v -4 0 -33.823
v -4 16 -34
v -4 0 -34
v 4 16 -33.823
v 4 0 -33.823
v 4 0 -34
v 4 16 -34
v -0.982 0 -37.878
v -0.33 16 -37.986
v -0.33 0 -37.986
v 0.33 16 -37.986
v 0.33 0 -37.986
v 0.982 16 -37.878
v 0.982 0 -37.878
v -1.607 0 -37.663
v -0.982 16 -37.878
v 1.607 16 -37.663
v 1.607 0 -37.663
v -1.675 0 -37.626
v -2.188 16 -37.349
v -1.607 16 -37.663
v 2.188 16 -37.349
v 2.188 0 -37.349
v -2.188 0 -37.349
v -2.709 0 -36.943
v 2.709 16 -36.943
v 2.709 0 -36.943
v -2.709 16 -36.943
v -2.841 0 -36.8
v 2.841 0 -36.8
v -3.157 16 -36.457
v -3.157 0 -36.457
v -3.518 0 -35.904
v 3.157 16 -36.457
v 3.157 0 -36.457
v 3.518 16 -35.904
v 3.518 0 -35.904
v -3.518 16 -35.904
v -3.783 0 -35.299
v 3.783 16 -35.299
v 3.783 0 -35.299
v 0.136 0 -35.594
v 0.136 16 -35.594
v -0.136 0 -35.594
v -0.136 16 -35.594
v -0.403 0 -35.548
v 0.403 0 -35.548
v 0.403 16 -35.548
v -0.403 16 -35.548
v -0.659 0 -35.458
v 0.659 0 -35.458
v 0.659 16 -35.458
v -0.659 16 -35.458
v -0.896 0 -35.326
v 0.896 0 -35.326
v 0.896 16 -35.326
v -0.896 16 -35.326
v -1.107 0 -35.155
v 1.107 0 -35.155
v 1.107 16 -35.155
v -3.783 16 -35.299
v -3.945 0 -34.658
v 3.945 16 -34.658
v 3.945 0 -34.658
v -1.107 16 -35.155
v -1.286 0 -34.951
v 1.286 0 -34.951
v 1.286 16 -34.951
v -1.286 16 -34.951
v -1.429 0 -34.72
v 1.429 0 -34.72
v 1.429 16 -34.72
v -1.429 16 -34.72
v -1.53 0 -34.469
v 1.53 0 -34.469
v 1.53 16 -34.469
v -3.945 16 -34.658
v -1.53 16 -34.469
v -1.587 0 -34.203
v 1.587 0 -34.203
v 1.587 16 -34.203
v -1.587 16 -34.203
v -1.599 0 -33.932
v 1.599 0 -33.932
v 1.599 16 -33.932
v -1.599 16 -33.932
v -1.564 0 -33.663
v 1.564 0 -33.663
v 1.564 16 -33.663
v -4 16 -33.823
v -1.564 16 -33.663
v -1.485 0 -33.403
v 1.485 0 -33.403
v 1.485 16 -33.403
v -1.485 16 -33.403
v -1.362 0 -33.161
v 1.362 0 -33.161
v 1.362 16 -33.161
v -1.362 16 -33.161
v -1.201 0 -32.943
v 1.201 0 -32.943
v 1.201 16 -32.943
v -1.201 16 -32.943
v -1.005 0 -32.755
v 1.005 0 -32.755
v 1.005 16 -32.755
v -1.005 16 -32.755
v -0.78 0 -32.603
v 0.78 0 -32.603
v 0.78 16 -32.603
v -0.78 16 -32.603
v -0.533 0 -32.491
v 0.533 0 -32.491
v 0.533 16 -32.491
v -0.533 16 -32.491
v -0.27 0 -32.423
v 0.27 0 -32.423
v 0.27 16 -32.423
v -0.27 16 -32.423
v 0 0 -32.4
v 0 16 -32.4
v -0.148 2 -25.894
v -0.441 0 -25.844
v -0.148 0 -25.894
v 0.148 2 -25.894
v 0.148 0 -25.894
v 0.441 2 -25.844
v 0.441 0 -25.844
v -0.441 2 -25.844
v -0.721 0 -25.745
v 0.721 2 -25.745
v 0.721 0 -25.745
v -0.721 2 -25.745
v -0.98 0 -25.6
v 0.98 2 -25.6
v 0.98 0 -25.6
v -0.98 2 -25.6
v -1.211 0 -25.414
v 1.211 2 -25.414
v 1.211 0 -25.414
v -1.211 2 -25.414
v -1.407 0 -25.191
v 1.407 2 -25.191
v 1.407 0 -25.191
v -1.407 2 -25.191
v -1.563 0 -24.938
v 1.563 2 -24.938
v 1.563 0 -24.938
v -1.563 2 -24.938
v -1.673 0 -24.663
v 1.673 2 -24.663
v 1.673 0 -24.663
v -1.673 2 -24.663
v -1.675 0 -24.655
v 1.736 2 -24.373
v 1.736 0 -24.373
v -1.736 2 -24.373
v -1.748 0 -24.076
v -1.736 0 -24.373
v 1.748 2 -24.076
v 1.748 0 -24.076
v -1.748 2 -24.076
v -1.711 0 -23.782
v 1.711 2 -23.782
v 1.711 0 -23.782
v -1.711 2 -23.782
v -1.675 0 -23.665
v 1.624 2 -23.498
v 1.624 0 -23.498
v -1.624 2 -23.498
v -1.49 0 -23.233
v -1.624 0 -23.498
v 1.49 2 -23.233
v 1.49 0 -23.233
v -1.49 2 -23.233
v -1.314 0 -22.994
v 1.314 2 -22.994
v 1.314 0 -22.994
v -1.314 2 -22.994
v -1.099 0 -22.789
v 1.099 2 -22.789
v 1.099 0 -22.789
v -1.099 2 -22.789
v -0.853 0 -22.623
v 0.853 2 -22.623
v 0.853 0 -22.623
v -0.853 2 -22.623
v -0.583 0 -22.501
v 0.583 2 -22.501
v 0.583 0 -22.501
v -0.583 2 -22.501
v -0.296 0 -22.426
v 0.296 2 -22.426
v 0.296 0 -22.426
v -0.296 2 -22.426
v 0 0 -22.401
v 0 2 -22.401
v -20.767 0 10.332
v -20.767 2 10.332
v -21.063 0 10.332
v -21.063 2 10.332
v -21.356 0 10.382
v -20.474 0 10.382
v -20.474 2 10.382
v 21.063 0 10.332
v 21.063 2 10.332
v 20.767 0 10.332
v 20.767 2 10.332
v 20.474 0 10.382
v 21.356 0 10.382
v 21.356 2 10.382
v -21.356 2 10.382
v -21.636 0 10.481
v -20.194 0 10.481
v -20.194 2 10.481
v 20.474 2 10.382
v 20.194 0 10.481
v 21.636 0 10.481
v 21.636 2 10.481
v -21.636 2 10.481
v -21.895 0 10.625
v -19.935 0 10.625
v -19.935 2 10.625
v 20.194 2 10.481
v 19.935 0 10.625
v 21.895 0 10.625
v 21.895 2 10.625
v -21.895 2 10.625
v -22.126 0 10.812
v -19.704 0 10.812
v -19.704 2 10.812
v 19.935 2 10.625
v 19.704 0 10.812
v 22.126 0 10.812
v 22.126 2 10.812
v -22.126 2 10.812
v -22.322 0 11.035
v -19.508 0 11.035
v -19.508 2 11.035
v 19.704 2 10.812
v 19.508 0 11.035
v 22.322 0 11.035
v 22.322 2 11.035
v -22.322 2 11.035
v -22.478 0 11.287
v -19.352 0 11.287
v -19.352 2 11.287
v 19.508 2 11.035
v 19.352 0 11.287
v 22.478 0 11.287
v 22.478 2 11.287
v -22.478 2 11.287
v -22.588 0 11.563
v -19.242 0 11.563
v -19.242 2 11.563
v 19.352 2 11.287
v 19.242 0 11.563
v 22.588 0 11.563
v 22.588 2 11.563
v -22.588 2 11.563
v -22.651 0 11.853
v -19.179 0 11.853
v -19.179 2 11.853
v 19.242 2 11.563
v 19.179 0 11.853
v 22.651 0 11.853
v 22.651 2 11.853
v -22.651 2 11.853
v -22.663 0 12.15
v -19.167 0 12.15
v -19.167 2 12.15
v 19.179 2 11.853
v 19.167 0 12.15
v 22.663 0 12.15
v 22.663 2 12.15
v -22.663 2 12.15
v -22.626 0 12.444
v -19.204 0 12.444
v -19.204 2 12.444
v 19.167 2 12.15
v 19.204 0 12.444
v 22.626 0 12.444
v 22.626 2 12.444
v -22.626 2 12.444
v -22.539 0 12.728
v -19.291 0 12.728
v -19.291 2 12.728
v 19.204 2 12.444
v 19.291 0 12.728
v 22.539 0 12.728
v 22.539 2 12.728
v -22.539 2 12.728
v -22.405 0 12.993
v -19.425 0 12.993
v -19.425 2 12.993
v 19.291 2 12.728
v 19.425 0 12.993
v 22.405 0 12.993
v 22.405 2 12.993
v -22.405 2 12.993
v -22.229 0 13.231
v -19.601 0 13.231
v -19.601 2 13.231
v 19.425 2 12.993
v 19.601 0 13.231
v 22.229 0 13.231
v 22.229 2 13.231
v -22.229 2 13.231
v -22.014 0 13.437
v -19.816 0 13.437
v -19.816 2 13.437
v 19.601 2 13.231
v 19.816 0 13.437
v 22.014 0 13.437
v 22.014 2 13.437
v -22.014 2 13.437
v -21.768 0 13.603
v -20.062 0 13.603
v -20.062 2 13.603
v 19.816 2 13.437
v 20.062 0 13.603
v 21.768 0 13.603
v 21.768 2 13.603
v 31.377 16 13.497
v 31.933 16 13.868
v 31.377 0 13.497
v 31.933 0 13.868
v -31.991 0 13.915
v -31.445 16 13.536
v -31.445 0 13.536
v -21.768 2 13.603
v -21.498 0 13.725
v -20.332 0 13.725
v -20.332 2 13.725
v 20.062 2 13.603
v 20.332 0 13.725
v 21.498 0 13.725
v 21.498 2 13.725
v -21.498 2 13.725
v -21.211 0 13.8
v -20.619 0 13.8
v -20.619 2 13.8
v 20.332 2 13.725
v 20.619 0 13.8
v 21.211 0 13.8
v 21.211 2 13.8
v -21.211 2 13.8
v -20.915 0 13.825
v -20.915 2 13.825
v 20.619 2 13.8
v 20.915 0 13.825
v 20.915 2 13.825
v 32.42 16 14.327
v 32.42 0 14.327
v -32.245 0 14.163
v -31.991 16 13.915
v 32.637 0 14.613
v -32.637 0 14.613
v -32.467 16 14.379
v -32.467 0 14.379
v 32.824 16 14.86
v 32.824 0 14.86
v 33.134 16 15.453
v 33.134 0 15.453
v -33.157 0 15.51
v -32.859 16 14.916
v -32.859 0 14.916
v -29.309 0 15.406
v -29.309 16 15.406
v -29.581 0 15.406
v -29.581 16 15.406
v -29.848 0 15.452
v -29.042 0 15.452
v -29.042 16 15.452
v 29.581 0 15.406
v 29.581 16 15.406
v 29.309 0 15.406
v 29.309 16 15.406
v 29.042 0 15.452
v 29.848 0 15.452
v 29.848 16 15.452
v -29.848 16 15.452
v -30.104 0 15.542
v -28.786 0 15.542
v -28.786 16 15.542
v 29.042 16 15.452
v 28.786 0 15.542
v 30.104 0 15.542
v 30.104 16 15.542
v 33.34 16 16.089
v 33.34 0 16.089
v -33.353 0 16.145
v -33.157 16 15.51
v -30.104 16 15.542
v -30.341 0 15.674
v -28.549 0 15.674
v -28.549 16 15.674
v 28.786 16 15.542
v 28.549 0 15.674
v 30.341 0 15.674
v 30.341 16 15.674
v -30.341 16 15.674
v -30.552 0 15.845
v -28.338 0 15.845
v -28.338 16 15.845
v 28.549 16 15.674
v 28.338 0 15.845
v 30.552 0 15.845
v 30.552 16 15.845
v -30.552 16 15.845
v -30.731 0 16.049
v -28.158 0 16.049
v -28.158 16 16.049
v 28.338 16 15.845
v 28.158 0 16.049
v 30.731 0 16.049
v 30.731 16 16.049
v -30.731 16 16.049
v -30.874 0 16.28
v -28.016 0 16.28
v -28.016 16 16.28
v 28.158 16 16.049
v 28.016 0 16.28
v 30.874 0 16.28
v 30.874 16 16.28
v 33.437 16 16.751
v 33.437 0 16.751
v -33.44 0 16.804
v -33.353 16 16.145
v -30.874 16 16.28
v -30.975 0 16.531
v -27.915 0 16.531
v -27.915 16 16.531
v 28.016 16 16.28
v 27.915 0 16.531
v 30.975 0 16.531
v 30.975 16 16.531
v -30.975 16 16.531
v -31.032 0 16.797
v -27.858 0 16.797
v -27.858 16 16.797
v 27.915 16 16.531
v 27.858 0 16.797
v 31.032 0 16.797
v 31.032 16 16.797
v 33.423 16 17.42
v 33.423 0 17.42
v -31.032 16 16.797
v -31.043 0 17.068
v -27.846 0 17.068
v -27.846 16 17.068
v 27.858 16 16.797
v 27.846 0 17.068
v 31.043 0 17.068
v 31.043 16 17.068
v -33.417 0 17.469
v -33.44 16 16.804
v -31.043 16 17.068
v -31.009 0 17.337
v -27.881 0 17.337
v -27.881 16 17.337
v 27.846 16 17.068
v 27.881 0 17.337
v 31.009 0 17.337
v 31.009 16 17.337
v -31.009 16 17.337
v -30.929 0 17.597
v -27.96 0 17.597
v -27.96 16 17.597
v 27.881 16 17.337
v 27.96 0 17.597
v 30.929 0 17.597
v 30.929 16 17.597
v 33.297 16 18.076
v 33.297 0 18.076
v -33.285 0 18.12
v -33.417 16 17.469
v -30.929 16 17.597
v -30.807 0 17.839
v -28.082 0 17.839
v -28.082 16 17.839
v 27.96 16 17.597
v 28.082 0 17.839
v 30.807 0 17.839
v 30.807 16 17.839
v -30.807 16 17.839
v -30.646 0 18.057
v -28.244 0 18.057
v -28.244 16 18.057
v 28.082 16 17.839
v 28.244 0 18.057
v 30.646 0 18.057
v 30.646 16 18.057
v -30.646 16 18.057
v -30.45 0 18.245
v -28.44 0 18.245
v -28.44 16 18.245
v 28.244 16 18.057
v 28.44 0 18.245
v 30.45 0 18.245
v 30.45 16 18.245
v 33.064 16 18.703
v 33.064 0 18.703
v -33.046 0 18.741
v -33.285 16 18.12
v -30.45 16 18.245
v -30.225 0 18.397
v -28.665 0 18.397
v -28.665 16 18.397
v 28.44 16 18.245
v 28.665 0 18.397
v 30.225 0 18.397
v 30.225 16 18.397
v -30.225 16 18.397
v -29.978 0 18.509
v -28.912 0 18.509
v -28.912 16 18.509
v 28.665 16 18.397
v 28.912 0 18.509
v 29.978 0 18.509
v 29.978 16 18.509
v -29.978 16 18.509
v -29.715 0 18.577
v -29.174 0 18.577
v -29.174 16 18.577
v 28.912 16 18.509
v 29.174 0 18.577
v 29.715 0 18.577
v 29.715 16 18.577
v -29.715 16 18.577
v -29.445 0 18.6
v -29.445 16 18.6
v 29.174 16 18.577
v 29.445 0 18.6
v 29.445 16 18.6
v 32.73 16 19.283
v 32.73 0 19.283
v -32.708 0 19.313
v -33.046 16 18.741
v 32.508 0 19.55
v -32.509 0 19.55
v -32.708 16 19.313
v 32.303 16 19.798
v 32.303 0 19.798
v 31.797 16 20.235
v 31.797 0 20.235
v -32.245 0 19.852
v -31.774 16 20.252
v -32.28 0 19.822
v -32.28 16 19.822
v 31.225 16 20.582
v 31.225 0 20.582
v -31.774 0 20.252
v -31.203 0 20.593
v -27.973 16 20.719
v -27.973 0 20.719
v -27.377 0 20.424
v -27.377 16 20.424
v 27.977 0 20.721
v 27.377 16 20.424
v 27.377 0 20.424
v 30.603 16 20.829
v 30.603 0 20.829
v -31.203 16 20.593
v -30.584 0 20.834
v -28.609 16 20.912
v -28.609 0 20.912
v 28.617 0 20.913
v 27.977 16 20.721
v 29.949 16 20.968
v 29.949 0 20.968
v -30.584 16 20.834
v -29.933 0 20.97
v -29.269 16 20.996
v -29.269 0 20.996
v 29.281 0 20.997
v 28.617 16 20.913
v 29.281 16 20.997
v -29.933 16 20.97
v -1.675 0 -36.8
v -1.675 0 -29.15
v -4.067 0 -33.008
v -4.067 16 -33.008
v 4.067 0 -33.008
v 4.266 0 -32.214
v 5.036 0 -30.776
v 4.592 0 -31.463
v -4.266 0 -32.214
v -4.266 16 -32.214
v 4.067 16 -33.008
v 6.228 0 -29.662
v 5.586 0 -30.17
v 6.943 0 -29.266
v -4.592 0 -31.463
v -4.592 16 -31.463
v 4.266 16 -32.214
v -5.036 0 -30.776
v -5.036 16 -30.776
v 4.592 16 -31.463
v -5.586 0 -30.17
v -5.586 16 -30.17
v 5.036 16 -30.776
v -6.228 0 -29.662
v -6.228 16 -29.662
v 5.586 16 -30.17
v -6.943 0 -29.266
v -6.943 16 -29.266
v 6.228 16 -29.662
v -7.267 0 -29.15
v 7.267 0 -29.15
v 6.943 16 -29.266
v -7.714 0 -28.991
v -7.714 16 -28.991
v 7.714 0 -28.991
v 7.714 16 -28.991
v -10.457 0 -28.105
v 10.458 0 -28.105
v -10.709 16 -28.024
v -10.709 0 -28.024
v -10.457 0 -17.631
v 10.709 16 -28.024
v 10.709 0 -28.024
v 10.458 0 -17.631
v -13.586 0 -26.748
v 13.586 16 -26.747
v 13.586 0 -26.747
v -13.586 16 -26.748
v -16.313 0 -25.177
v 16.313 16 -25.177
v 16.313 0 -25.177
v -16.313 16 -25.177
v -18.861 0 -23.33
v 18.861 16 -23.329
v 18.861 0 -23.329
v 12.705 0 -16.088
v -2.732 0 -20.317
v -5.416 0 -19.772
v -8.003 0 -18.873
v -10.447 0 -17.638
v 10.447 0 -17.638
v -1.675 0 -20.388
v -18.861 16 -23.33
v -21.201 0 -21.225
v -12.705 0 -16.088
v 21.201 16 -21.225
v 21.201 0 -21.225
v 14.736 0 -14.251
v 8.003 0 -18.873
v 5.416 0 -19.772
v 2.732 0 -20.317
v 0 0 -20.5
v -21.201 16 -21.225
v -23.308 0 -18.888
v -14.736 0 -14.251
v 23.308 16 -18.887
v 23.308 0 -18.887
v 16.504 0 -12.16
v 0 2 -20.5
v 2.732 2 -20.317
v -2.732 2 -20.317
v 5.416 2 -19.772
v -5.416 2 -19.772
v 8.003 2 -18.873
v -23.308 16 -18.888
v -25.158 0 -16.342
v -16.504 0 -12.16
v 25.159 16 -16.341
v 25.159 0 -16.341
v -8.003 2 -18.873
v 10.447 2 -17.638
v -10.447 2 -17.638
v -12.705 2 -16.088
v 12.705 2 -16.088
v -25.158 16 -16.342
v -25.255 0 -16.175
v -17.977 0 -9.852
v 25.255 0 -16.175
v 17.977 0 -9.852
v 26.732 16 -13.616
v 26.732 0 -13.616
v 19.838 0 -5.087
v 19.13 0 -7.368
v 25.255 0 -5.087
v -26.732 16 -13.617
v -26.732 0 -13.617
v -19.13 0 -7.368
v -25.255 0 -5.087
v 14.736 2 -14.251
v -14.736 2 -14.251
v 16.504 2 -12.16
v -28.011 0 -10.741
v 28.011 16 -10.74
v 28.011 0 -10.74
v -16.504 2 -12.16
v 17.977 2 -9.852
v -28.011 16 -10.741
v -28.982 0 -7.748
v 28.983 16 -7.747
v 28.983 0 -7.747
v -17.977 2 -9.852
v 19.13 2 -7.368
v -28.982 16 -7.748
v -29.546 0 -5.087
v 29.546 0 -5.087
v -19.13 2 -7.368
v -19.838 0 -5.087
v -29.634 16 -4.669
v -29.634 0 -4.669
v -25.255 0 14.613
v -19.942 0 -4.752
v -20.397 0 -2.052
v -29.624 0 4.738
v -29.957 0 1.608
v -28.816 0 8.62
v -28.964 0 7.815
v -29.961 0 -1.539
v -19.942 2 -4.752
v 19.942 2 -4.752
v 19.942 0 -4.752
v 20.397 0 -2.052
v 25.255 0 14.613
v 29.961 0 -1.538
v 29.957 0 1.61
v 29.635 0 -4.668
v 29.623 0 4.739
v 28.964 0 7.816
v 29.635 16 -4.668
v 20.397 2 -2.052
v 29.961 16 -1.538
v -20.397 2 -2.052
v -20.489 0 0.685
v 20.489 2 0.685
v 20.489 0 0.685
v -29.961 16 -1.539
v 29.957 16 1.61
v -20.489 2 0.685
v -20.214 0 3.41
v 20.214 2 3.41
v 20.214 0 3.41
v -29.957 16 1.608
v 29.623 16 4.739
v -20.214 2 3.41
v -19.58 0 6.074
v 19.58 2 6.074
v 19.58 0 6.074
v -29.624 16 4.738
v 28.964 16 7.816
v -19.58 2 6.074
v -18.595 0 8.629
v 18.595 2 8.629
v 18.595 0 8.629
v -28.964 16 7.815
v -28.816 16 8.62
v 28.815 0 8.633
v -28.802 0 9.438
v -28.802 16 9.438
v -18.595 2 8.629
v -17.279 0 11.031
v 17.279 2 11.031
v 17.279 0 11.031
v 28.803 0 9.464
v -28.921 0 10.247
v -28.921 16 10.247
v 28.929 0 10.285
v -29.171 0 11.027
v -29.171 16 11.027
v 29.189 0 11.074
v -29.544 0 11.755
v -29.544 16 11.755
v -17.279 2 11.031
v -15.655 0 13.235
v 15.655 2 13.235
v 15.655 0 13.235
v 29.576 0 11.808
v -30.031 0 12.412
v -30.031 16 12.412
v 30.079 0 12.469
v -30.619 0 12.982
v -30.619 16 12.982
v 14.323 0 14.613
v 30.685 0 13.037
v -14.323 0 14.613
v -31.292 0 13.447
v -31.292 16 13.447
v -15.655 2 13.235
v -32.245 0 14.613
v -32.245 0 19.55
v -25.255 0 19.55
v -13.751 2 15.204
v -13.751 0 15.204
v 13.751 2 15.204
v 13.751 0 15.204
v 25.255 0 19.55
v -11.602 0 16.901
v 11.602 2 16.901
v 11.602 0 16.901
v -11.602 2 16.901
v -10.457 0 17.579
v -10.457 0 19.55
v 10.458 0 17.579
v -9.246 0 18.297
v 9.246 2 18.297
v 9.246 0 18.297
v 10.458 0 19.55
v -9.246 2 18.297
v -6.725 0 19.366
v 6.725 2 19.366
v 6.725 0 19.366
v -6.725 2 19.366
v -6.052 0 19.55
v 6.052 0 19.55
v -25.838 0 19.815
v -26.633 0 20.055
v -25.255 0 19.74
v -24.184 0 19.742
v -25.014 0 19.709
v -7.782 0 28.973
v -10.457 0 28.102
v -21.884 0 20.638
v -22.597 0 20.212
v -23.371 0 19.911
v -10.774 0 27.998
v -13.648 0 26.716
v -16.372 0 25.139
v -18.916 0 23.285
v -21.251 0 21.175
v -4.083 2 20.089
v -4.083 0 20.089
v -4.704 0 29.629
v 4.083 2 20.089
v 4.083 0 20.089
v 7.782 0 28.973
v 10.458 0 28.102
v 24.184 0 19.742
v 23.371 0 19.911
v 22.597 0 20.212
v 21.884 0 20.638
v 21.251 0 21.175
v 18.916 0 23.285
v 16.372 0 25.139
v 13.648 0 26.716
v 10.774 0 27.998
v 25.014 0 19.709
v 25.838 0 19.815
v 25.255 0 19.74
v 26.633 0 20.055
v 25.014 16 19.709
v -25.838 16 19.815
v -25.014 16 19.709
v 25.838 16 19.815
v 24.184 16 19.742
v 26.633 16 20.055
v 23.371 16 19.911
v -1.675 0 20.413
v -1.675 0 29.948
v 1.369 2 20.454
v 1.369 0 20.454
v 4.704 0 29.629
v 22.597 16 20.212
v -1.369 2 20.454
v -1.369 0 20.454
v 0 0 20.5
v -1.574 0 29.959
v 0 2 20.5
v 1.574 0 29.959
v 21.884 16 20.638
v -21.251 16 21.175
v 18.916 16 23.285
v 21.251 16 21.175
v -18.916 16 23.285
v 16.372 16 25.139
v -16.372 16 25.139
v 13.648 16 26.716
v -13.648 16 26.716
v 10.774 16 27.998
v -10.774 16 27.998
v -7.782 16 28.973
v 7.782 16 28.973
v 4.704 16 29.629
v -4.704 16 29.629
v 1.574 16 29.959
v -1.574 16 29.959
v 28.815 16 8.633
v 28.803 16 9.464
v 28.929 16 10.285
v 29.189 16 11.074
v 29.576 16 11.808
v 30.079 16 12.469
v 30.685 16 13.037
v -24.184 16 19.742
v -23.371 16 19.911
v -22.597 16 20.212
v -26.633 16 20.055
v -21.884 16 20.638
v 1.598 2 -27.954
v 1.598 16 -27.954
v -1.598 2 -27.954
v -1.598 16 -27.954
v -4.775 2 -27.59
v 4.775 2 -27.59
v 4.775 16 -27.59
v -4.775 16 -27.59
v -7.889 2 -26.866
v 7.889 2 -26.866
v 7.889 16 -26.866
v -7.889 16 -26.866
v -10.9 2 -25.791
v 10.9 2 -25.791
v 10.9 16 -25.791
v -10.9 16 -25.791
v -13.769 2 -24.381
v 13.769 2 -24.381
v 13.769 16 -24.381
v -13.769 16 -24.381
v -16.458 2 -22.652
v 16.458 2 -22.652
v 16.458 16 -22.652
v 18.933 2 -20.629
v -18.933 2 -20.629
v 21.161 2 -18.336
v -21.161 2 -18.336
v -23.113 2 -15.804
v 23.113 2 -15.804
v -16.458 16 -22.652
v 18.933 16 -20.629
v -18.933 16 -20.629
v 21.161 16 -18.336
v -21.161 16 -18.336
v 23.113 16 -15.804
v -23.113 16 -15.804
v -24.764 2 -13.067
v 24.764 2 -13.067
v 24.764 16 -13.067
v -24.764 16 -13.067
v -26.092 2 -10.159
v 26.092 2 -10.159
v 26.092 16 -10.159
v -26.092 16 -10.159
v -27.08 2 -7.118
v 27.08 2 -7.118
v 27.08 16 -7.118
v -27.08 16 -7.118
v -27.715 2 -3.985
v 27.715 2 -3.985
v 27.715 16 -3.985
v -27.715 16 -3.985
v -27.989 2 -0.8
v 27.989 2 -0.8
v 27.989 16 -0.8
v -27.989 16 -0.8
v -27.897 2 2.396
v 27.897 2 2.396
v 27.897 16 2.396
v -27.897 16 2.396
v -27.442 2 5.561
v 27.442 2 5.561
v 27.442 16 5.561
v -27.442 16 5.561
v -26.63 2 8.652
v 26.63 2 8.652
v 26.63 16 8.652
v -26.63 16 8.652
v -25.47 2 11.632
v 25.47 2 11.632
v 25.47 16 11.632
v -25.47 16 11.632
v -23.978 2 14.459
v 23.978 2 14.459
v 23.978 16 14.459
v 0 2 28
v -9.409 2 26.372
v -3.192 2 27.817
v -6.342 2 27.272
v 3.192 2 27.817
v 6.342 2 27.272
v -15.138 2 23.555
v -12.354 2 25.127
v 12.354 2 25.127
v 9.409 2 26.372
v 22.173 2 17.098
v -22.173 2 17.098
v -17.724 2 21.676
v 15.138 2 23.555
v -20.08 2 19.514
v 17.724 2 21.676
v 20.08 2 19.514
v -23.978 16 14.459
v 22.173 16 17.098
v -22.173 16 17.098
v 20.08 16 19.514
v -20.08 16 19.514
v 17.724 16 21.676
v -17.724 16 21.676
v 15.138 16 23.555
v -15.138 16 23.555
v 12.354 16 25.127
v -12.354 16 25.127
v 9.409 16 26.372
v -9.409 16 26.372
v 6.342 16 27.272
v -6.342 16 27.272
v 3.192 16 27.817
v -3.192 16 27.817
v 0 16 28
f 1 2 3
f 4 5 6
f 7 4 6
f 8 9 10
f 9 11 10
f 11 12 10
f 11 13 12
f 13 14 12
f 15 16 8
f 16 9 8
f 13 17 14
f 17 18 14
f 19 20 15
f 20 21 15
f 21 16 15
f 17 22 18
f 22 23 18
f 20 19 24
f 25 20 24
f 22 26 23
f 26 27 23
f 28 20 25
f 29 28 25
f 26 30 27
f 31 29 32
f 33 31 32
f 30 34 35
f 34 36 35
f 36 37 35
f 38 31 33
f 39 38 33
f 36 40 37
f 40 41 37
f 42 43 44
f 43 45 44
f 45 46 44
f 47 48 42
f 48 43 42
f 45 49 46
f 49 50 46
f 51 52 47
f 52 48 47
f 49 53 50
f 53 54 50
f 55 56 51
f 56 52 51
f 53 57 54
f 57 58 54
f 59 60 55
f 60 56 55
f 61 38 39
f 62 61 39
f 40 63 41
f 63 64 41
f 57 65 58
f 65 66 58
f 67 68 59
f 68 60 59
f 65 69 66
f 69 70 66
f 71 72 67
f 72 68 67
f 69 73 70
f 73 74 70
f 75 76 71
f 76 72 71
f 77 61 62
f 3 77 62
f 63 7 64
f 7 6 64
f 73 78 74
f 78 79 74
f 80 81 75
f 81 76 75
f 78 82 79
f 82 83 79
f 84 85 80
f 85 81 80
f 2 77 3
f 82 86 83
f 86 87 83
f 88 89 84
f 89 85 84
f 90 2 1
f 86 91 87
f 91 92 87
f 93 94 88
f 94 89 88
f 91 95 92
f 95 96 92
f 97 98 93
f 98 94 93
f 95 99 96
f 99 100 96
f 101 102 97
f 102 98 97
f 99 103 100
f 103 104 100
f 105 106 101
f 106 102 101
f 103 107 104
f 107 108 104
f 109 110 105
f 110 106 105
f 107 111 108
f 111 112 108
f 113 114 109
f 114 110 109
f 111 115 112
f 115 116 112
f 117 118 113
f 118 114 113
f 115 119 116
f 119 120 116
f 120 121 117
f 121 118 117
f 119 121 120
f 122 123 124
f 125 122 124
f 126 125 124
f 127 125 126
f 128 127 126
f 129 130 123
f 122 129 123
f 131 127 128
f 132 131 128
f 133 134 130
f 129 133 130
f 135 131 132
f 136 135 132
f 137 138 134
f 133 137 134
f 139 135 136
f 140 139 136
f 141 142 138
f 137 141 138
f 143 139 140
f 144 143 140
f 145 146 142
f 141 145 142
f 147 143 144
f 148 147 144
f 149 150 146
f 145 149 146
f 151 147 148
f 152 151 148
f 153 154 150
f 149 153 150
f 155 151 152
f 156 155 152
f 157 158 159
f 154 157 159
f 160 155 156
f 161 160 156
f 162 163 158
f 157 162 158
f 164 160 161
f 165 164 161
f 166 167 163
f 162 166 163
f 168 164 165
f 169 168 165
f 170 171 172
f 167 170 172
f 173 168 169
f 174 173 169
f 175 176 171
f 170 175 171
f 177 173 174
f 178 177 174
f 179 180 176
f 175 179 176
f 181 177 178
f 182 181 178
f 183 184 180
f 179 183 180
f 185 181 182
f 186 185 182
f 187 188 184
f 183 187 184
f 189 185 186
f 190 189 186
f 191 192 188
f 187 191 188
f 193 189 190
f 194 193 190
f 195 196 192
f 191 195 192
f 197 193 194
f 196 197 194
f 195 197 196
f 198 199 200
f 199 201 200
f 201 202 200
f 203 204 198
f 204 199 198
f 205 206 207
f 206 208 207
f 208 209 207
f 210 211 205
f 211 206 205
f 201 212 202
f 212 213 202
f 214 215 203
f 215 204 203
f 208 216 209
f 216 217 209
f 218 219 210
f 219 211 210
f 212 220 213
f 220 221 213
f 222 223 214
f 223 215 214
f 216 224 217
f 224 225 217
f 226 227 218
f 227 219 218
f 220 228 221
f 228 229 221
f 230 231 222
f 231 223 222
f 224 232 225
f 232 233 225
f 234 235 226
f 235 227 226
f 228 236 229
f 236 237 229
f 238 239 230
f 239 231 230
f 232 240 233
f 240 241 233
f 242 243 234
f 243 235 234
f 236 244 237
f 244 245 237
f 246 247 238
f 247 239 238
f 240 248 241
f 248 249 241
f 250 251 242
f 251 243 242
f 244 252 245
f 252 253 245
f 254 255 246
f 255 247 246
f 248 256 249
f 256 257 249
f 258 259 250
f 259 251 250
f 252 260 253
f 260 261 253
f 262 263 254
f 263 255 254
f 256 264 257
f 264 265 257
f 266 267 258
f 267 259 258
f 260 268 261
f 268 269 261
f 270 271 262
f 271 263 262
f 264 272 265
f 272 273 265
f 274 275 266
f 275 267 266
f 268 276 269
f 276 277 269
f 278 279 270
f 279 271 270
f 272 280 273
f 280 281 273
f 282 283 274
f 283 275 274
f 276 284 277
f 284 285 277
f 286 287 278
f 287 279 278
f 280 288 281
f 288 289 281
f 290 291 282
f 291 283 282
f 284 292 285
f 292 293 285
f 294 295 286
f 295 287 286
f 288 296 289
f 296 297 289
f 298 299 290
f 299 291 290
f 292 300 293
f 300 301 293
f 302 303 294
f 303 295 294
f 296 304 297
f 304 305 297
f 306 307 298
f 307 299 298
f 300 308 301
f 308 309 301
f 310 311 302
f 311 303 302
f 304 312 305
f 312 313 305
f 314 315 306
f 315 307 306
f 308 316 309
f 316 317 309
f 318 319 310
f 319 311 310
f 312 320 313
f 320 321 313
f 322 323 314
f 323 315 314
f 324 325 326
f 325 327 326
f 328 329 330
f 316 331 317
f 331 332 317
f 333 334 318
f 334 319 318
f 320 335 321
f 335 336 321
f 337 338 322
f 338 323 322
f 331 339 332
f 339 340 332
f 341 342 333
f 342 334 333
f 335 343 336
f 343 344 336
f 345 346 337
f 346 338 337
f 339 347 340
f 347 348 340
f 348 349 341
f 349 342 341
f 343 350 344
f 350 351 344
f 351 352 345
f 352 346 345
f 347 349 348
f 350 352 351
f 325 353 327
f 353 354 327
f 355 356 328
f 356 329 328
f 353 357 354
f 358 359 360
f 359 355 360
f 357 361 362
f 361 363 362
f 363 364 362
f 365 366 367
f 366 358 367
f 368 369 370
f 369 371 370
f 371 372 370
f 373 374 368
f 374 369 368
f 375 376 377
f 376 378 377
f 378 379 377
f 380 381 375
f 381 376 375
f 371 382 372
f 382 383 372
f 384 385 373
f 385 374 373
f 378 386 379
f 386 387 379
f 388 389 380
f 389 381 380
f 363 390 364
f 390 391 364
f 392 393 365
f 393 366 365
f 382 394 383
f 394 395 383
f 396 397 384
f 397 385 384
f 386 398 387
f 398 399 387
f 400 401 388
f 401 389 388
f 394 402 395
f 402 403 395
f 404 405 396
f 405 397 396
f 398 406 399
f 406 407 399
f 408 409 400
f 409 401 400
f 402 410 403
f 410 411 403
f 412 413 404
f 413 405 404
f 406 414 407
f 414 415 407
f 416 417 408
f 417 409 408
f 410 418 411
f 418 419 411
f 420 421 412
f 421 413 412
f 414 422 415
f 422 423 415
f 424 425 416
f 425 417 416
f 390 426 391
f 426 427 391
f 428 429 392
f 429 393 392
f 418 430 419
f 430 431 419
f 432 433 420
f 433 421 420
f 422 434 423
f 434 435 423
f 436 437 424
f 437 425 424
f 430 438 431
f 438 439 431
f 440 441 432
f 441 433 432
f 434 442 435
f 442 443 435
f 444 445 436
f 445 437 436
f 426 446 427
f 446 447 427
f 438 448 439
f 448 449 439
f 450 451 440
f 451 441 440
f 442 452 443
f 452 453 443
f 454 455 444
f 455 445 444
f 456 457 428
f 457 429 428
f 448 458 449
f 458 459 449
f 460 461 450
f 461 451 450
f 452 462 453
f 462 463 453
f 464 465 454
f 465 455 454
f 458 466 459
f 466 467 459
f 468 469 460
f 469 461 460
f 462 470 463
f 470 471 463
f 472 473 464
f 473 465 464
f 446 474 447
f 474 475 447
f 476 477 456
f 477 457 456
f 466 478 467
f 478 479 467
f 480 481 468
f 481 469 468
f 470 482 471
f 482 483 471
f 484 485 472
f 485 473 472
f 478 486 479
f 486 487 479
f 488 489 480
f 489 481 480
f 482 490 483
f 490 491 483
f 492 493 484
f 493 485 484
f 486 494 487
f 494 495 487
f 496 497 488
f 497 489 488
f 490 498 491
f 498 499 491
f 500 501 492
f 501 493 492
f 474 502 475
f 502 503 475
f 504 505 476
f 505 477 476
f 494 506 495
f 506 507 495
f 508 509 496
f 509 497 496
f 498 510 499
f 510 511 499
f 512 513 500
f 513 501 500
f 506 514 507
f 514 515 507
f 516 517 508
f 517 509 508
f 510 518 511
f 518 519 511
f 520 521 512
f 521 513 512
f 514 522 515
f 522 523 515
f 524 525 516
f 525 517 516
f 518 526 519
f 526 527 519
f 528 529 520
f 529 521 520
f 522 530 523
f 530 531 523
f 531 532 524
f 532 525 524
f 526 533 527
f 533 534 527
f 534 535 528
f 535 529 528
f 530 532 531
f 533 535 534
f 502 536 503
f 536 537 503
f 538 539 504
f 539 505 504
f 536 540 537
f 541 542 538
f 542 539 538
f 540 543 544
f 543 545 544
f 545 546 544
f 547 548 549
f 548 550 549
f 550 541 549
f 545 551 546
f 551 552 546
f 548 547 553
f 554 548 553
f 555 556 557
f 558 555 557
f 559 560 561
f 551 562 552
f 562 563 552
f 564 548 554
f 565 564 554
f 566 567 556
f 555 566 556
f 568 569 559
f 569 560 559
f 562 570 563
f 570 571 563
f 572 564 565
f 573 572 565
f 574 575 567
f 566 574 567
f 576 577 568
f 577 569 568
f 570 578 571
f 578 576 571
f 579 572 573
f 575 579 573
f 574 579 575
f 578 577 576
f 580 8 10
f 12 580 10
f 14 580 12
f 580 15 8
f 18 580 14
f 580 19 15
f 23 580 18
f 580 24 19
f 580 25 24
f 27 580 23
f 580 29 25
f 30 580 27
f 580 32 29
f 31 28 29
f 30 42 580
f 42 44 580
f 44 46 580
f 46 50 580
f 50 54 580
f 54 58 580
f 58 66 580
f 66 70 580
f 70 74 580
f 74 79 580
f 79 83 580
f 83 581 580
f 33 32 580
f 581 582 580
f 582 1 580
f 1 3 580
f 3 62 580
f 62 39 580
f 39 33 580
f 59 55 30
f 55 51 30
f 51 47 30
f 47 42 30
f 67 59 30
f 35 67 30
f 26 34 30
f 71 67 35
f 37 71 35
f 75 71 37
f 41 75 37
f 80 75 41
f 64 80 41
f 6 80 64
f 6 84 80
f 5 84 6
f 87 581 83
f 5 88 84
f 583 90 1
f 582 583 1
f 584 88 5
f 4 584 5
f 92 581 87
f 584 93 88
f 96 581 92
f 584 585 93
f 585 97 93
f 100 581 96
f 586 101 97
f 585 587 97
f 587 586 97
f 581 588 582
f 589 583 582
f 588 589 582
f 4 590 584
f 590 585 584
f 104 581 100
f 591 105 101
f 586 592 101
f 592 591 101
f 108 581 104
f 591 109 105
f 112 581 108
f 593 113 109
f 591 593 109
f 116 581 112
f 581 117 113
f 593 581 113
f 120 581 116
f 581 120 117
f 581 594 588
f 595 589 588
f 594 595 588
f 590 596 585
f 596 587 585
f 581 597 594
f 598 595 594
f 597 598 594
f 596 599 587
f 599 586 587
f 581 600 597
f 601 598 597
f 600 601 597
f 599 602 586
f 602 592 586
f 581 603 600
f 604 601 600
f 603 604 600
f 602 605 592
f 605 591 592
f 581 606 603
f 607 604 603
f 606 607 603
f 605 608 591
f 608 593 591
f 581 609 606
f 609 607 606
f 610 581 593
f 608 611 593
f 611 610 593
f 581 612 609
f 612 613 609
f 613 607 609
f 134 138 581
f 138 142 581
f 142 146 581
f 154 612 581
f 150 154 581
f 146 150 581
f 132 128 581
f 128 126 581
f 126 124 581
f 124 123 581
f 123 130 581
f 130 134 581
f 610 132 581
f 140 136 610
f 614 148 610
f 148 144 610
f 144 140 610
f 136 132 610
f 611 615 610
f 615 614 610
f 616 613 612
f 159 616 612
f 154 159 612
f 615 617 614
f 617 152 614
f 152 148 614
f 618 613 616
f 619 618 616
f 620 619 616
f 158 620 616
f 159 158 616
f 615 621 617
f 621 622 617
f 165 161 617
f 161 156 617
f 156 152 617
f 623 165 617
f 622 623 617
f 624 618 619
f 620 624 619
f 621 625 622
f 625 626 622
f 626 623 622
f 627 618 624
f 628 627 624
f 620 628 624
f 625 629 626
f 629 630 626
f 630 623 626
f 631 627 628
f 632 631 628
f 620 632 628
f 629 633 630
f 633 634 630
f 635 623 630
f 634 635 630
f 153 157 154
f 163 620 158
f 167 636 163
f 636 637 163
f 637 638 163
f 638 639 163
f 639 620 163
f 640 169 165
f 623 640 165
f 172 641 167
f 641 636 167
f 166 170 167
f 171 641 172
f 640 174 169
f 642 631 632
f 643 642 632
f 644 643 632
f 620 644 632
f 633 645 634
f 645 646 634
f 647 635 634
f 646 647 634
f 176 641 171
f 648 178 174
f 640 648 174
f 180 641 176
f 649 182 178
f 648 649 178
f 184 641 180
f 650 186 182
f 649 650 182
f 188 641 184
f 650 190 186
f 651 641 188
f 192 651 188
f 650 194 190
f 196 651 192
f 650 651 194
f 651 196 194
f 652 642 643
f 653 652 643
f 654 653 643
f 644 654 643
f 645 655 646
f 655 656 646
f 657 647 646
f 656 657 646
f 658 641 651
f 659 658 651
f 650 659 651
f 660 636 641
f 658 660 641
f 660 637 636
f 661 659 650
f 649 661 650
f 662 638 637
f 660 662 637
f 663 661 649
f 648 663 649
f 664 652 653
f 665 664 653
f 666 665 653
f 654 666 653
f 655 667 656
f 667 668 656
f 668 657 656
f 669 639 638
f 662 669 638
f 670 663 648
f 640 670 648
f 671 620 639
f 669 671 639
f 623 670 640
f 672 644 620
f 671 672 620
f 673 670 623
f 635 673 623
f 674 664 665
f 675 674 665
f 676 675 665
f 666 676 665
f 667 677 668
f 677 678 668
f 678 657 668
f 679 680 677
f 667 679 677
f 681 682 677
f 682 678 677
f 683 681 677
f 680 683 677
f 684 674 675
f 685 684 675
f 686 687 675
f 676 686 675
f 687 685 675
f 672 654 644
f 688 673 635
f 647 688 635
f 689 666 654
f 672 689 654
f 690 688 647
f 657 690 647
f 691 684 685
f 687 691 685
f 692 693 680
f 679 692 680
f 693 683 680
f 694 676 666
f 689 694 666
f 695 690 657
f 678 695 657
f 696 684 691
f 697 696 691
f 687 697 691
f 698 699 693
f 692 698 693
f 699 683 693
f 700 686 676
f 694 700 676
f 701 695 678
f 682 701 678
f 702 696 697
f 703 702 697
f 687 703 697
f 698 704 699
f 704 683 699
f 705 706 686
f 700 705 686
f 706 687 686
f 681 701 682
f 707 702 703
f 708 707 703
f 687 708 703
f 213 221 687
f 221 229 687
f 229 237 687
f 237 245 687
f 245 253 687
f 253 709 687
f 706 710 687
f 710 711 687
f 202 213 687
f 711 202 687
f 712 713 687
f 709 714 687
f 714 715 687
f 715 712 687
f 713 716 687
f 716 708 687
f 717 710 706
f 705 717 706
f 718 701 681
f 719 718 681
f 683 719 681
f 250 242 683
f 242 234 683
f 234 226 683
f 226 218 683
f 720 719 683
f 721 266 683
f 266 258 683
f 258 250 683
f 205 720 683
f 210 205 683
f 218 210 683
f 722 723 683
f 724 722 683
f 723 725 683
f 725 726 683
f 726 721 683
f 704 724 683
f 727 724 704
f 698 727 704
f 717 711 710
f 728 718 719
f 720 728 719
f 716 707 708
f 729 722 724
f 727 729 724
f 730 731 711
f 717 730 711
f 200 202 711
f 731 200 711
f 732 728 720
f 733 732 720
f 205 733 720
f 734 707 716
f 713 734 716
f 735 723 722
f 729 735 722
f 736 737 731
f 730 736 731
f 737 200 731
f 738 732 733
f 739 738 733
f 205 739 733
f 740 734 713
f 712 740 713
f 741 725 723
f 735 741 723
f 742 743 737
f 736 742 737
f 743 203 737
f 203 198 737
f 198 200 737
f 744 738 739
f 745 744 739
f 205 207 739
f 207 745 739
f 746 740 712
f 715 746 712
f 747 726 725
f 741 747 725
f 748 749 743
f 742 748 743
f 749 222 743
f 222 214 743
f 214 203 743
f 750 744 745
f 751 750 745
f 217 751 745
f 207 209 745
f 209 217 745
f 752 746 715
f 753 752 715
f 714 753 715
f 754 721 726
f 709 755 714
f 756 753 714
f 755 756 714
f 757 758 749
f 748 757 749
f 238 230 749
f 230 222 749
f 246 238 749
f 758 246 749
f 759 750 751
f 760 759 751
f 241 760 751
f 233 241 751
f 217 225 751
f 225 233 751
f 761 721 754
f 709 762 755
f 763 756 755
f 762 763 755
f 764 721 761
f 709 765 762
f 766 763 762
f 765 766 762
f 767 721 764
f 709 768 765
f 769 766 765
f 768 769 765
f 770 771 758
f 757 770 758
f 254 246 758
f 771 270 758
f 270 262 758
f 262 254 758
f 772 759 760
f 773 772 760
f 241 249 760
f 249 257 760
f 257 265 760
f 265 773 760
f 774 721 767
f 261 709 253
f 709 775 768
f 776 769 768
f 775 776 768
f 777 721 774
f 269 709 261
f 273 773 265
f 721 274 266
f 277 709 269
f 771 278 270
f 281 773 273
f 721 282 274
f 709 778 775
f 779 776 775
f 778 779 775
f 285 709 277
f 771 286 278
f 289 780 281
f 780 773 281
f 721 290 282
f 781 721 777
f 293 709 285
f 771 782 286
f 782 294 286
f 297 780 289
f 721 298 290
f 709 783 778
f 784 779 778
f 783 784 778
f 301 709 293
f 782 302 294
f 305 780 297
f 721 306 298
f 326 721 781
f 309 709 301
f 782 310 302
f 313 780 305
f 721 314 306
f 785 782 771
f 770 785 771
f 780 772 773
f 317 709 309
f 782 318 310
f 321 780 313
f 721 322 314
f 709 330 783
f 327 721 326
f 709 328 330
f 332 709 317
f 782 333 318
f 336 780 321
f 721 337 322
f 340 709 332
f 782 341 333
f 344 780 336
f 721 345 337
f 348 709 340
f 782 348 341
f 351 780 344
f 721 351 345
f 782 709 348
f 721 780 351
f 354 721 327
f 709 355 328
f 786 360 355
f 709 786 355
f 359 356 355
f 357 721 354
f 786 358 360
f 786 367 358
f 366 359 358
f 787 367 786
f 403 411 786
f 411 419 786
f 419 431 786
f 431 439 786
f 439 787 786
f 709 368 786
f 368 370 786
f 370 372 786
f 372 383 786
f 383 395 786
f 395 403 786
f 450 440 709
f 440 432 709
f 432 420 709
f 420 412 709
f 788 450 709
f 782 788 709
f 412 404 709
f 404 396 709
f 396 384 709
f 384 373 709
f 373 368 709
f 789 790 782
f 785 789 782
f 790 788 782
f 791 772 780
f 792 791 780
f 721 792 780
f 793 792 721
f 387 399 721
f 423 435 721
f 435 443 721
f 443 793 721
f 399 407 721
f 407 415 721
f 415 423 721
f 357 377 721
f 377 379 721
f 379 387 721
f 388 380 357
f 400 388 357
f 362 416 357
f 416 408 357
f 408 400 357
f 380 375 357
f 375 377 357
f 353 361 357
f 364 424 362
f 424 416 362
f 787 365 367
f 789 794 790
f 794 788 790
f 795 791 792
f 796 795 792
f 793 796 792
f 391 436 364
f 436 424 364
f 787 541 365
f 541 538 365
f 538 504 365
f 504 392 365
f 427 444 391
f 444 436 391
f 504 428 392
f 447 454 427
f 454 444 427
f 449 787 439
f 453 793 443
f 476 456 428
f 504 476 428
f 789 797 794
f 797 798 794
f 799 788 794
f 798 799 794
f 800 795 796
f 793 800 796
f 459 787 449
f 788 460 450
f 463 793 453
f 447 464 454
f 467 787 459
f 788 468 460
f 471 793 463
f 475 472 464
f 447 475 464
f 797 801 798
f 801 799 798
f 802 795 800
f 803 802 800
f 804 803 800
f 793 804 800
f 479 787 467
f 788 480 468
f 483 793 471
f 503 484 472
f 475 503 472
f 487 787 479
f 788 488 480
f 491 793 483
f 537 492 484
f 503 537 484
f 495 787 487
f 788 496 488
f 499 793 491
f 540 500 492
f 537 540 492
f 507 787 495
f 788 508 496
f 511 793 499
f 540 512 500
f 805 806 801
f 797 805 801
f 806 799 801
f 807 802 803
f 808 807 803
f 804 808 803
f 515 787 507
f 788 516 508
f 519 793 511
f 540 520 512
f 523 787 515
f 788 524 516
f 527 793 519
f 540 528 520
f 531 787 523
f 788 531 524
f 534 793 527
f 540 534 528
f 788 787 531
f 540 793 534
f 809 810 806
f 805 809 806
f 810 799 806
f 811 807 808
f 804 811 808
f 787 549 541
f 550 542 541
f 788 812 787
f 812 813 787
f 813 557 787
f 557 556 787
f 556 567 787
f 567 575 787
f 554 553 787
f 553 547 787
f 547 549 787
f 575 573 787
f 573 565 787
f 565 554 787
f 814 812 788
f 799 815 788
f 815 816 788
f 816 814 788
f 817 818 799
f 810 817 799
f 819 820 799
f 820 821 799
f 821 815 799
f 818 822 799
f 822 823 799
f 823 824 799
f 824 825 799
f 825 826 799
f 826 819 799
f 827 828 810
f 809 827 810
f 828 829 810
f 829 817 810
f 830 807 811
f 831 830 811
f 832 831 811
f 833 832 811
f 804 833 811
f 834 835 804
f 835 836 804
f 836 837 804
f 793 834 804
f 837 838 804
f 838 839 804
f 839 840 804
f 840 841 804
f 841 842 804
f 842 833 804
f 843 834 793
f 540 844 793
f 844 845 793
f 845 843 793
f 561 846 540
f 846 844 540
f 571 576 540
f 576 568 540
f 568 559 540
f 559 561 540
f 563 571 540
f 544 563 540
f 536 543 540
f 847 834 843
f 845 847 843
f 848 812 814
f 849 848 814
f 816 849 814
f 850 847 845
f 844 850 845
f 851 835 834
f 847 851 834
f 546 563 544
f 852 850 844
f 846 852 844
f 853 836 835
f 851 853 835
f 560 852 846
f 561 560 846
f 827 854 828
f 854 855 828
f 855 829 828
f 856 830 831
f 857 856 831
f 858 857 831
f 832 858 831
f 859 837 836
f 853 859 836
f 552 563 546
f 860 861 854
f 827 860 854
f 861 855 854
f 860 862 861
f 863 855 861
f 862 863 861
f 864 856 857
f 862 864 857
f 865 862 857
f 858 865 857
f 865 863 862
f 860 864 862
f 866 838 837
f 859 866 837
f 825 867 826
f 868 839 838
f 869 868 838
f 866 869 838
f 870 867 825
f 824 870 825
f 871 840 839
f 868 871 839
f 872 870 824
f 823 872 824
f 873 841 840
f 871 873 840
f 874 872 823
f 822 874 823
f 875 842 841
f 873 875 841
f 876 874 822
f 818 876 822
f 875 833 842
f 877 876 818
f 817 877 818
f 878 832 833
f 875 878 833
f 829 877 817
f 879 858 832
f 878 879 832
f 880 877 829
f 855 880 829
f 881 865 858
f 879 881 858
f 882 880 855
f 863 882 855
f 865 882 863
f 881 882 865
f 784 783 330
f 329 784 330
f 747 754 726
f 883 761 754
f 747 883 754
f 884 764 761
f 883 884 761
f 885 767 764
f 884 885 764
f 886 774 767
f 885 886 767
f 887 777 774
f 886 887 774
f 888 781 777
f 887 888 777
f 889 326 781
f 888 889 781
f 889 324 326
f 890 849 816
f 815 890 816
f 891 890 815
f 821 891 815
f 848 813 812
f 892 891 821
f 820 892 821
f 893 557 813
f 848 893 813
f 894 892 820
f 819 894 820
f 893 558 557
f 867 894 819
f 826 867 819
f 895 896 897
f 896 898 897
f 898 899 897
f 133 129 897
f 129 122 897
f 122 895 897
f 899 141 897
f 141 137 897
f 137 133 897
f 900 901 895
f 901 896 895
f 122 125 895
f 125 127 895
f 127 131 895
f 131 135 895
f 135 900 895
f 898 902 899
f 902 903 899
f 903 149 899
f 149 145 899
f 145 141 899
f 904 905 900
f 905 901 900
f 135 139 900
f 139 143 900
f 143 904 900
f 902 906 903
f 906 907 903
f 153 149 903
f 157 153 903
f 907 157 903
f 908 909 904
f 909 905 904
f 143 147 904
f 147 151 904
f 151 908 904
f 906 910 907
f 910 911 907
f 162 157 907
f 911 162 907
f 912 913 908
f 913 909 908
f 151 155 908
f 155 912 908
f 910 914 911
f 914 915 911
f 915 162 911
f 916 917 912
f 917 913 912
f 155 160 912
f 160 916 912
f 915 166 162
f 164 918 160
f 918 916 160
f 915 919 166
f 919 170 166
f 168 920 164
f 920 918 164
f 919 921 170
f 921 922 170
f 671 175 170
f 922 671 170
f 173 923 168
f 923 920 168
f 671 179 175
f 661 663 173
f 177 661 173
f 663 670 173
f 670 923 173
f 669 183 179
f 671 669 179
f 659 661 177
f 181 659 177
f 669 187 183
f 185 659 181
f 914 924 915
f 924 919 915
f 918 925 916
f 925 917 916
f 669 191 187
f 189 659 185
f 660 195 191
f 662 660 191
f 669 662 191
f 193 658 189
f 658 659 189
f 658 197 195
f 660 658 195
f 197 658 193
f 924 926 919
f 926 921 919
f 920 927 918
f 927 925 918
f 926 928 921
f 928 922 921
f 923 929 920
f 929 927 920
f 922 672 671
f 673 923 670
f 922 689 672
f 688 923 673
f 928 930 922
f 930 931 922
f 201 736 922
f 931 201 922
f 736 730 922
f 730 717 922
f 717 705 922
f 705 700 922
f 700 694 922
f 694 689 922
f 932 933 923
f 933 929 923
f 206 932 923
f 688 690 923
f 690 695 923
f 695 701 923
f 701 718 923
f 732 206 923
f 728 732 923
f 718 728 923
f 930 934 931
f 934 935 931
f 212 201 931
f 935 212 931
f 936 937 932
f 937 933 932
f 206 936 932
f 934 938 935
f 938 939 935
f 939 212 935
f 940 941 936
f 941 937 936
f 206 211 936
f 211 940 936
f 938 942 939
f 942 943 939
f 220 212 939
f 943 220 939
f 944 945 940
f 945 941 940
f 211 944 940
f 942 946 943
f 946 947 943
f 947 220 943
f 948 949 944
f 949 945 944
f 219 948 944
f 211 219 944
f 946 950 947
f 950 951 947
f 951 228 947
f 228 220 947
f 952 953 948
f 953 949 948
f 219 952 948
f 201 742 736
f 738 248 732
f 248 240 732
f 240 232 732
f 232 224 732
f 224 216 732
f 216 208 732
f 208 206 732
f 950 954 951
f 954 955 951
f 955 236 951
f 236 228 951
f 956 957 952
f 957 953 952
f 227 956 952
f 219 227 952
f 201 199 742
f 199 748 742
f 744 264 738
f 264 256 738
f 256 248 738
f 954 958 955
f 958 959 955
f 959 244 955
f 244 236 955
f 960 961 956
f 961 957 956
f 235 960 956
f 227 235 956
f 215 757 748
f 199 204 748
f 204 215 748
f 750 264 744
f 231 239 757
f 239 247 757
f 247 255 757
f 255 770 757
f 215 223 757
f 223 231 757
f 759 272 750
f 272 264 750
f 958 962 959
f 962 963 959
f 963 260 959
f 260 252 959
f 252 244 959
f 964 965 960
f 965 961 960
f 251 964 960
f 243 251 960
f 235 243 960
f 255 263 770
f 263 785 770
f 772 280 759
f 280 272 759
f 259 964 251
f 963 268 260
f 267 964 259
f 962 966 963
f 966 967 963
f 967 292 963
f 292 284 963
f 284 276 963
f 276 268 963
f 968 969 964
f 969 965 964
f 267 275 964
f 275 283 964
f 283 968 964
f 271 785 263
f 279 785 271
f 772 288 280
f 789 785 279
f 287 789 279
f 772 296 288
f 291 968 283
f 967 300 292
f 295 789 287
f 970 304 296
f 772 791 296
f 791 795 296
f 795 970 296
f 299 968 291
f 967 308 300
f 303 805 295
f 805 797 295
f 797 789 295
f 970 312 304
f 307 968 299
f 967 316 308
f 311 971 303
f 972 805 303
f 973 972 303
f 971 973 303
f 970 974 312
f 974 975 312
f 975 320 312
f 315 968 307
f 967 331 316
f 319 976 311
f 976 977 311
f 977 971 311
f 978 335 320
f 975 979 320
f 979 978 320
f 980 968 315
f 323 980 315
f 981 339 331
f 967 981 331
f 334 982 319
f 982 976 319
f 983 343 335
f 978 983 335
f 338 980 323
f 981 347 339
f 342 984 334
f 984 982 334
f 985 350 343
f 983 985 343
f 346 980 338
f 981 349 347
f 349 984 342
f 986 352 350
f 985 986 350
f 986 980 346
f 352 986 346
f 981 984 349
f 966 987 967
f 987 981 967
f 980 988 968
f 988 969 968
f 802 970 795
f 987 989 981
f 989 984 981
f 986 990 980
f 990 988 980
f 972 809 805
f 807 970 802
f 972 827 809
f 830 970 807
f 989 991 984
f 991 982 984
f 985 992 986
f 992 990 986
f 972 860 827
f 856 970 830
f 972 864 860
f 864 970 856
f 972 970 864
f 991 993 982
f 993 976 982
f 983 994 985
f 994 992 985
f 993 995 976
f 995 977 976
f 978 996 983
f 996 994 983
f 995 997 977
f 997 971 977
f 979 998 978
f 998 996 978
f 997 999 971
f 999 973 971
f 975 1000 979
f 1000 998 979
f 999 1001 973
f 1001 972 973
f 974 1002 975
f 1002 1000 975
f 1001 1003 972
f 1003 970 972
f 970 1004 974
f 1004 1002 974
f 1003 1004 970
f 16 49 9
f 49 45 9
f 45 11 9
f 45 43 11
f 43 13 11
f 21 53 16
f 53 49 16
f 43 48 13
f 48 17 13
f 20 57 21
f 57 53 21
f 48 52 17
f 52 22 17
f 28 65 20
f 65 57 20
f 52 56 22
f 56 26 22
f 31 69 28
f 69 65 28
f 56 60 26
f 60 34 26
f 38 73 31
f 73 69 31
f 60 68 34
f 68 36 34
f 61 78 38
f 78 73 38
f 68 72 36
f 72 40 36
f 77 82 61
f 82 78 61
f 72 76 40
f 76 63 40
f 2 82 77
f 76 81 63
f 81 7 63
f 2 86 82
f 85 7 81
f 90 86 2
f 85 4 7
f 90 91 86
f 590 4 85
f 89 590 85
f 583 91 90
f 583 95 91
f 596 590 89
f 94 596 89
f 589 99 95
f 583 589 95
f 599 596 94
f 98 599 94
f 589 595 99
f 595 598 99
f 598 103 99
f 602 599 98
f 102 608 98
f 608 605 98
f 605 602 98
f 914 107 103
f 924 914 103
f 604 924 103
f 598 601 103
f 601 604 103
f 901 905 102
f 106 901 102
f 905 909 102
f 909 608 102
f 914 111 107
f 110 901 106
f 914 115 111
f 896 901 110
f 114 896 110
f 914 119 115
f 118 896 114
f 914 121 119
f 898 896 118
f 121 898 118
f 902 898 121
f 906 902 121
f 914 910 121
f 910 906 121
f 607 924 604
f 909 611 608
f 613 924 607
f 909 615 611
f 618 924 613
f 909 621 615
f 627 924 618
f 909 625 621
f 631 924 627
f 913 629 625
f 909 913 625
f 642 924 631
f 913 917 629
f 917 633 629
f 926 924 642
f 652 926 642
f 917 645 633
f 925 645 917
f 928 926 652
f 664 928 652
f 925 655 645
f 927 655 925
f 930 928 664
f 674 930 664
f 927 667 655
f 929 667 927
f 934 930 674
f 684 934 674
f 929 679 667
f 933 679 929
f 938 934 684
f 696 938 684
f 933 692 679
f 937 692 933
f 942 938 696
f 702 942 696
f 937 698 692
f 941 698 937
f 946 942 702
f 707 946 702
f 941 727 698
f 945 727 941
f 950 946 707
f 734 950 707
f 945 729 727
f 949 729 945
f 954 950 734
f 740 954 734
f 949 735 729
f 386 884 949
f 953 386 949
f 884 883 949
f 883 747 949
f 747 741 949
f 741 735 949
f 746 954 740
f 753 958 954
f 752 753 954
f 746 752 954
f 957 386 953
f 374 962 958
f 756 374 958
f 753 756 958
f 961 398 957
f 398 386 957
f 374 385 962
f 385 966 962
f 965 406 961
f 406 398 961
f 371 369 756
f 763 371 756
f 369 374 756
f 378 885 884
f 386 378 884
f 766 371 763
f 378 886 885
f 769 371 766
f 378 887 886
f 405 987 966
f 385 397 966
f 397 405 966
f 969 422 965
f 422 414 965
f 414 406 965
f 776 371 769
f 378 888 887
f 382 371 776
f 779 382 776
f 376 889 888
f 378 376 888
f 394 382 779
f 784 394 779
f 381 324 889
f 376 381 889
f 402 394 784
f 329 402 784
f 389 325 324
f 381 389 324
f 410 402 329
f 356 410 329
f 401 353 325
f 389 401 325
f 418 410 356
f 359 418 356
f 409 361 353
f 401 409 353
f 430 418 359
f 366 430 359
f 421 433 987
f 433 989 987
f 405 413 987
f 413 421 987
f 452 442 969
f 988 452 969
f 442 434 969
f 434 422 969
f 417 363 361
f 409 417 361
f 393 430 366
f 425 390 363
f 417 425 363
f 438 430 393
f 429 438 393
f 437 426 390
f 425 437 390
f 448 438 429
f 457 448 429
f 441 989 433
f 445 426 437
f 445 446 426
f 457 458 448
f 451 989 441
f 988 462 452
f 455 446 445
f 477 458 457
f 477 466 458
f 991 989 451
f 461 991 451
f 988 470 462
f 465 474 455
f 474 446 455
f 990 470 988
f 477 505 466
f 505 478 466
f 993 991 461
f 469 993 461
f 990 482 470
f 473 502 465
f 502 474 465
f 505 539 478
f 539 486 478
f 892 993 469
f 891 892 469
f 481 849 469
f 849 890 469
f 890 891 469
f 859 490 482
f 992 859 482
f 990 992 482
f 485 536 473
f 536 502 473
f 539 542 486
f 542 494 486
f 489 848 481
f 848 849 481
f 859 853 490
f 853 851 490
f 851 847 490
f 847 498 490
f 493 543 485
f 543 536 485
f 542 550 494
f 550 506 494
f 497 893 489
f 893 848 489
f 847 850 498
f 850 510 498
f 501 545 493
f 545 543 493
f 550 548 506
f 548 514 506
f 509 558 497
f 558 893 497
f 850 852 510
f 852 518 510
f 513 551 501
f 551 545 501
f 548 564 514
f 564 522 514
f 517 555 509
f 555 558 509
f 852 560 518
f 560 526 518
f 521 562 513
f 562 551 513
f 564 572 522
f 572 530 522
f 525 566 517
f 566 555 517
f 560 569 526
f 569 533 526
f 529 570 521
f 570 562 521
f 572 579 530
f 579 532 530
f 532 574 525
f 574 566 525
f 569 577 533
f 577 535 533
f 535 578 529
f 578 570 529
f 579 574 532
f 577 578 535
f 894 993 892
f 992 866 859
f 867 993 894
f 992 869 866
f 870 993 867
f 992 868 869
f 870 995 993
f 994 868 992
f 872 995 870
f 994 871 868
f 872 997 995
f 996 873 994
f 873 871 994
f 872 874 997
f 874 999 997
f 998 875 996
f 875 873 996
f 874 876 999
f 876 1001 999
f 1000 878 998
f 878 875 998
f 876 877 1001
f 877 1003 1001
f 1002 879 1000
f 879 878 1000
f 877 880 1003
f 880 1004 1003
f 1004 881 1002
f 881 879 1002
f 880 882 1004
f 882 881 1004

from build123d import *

# Parameters (mm, degrees)
SKETCH1_R           = 30
SKETCH1_R_2         = 20.5
BOSS_EXTRUDE1_DEPTH = 16
SKETCH2_R           = 28
CUT_EXTRUDE1_DEPTH  = 14
BOSS_EXTRUDE2_START = -16
SKETCH4_R           = 4
SKETCH4_R_2         = 1.6
BOSS_EXTRUDE2_DEPTH = 16
FILLET1_R           = 5
SKETCH5_R           = 1.75
CUT_EXTRUDE2_DEPTH  = 53.521985177


with BuildPart() as part:
    # Sketch1 → Boss-Extrude1 (new body)
    with BuildSketch(Plane(origin=(0, 0, 0), x_dir=(1, 0, 0), z_dir=(0, 1, 0))):
        with Locations(Location((0, 0, 0), (0, 0, 270))):
            Circle(SKETCH1_R)
        with Locations(Location((0, 0, 0), (0, 0, 270))):
            Circle(SKETCH1_R_2, mode=Mode.SUBTRACT)
    extrude(amount=BOSS_EXTRUDE1_DEPTH)

    # Sketch2 → Cut-Extrude1 (cut)
    with BuildSketch(Plane(origin=(0, 16, 0), x_dir=(1, 0, 0), z_dir=(0, 1, 0))):
        with Locations(Location((0, 0, 0), (0, 0, 270))):
            Circle(SKETCH2_R)
    extrude(amount=-CUT_EXTRUDE1_DEPTH, mode=Mode.SUBTRACT)

    # Sketch4 → Boss-Extrude2 (add)
    # profile 1 of 9: a face of its own
    with BuildSketch(Plane(origin=(0, 16, 0), x_dir=(1, 0, 0), z_dir=(0, 1, 0)).offset(BOSS_EXTRUDE2_START)):
        with Locations((-29.444863729, -17)):
            Circle(SKETCH4_R)
        with Locations(Location((-29.444863729, -17, 0), (0, 0, 270))):
            Circle(SKETCH4_R_2, mode=Mode.SUBTRACT)
    # profile 2 of 9: a face of its own
    with BuildSketch(Plane(origin=(0, 16, 0), x_dir=(1, 0, 0), z_dir=(0, 1, 0)).offset(BOSS_EXTRUDE2_START)):
        with BuildLine():
            ThreePointArc((-23.897530801, -18.135821504), (-24.988384694, -16.600621385), (-25.980762095, -15.000000032))
            ThreePointArc((-25.980762095, -15.000000032), (-25.581160419, -15.964723837), (-25.444863729, -17))
            ThreePointArc((-25.444863729, -17), (-25.92341304, -18.897204534), (-27.244556251, -20.340456107))
            Line((-27.244556251, -20.340456107), (-23.897530801, -18.135821504))
        make_face()
    # profile 3 of 9: a face of its own
    with BuildSketch(Plane(origin=(0, 16, 0), x_dir=(1, 0, 0), z_dir=(0, 1, 0)).offset(BOSS_EXTRUDE2_START)):
        with BuildLine():
            ThreePointArc((-25.980762095, -15.000000032), (-26.92494299, -13.230549686), (-27.748786379, -11.401967132))
            Line((-27.748786379, -11.401967132), (-31.444863729, -13.535898385))
            ThreePointArc((-31.444863729, -13.535898385), (-28.40958753, -13.1362967), (-25.980762095, -15.000000032))
        make_face()
    # profile 4 of 9: a face of its own
    with BuildSketch(Plane(origin=(0, 16, 0), x_dir=(1, 0, 0), z_dir=(0, 1, 0)).offset(BOSS_EXTRUDE2_START)):
        with Locations((0, 34)):
            Circle(SKETCH4_R)
        with Locations(Location((0, 34, 0), (0, 0, 270))):
            Circle(SKETCH4_R_2, mode=Mode.SUBTRACT)
    # profile 5 of 9: a face of its own
    with BuildSketch(Plane(origin=(0, 16, 0), x_dir=(1, 0, 0), z_dir=(0, 1, 0)).offset(BOSS_EXTRUDE2_START)):
        with BuildLine():
            Line((4, 29.732137495), (4, 34))
            ThreePointArc((4, 34), (2.828427119, 31.171572869), (-1.7e-08, 30))
            ThreePointArc((-1.7e-08, 30), (2.00447937, 29.932959467), (4, 29.732137495))
        make_face()
    # profile 6 of 9: a face of its own
    with BuildSketch(Plane(origin=(0, 16, 0), x_dir=(1, 0, 0), z_dir=(0, 1, 0)).offset(BOSS_EXTRUDE2_START)):
        with BuildLine():
            ThreePointArc((-1.7e-08, 30), (-2.828427131, 31.171572881), (-4, 34))
            Line((-4, 34), (-4, 29.732137495))
            ThreePointArc((-4, 29.732137495), (-2.004479388, 29.932959466), (-1.7e-08, 30))
        make_face()
    # profile 7 of 9: a face of its own
    with BuildSketch(Plane(origin=(0, 16, 0), x_dir=(1, 0, 0), z_dir=(0, 1, 0)).offset(BOSS_EXTRUDE2_START)):
        with BuildLine():
            ThreePointArc((27.244556251, -20.340456107), (25.552370926, -17.921140477), (25.980761986, -15.00000022))
            ThreePointArc((25.980761986, -15.00000022), (24.988384634, -16.600621476), (23.897530801, -18.135821504))
            Line((23.897530801, -18.135821504), (27.244556251, -20.340456107))
        make_face()
    # profile 8 of 9: a face of its own
    with BuildSketch(Plane(origin=(0, 16, 0), x_dir=(1, 0, 0), z_dir=(0, 1, 0)).offset(BOSS_EXTRUDE2_START)):
        with BuildLine():
            Line((31.237629839, -13.424249775), (27.74612946, -11.408431091))
            ThreePointArc((27.74612946, -11.408431091), (26.923401686, -13.233685868), (25.980761986, -15.00000022))
            ThreePointArc((25.980761986, -15.00000022), (28.296348137, -13.168432183), (31.237629839, -13.424249775))
        make_face()
    # profile 9 of 9: a face of its own
    with BuildSketch(Plane(origin=(0, 16, 0), x_dir=(1, 0, 0), z_dir=(0, 1, 0)).offset(BOSS_EXTRUDE2_START)):
        with Locations((29.444863729, -17)):
            Circle(SKETCH4_R)
        with Locations(Location((29.444863729, -17, 0), (0, 0, 270))):
            Circle(SKETCH4_R_2, mode=Mode.SUBTRACT)
    extrude(amount=BOSS_EXTRUDE2_DEPTH)

    # Fillet1
    fillet1_edges = [part.edges().sort_by_distance(p)[0] for p in [
        (23.897530801, 8, 18.135821504),
        (27.74612946, 8, 11.408431091),
        (4, 8, -29.732137495),
        (-4, 8, -29.732137495),
        (-27.748786379, 8, 11.401967132),
        (-23.897530801, 8, 18.135821504),
    ]]
    fillet(fillet1_edges, radius=FILLET1_R)

    # Sketch5 → Cut-Extrude2 (cut, through all)
    with BuildSketch(Plane(origin=(0, 2, 0), x_dir=(1, 0, 0), z_dir=(0, 1, 0))):
        with Locations(Location((0, 24.15056176, 0), (0, 0, 270))):
            Circle(SKETCH5_R)
        with Locations(Location((-20.915, -12.07528088, 0), (0, 0, 270))):
            Circle(SKETCH5_R)
        with Locations(Location((20.915, -12.07528088, 0), (0, 0, 270))):
            Circle(SKETCH5_R)
    extrude(amount=-CUT_EXTRUDE2_DEPTH, mode=Mode.SUBTRACT)


solid = part.part
